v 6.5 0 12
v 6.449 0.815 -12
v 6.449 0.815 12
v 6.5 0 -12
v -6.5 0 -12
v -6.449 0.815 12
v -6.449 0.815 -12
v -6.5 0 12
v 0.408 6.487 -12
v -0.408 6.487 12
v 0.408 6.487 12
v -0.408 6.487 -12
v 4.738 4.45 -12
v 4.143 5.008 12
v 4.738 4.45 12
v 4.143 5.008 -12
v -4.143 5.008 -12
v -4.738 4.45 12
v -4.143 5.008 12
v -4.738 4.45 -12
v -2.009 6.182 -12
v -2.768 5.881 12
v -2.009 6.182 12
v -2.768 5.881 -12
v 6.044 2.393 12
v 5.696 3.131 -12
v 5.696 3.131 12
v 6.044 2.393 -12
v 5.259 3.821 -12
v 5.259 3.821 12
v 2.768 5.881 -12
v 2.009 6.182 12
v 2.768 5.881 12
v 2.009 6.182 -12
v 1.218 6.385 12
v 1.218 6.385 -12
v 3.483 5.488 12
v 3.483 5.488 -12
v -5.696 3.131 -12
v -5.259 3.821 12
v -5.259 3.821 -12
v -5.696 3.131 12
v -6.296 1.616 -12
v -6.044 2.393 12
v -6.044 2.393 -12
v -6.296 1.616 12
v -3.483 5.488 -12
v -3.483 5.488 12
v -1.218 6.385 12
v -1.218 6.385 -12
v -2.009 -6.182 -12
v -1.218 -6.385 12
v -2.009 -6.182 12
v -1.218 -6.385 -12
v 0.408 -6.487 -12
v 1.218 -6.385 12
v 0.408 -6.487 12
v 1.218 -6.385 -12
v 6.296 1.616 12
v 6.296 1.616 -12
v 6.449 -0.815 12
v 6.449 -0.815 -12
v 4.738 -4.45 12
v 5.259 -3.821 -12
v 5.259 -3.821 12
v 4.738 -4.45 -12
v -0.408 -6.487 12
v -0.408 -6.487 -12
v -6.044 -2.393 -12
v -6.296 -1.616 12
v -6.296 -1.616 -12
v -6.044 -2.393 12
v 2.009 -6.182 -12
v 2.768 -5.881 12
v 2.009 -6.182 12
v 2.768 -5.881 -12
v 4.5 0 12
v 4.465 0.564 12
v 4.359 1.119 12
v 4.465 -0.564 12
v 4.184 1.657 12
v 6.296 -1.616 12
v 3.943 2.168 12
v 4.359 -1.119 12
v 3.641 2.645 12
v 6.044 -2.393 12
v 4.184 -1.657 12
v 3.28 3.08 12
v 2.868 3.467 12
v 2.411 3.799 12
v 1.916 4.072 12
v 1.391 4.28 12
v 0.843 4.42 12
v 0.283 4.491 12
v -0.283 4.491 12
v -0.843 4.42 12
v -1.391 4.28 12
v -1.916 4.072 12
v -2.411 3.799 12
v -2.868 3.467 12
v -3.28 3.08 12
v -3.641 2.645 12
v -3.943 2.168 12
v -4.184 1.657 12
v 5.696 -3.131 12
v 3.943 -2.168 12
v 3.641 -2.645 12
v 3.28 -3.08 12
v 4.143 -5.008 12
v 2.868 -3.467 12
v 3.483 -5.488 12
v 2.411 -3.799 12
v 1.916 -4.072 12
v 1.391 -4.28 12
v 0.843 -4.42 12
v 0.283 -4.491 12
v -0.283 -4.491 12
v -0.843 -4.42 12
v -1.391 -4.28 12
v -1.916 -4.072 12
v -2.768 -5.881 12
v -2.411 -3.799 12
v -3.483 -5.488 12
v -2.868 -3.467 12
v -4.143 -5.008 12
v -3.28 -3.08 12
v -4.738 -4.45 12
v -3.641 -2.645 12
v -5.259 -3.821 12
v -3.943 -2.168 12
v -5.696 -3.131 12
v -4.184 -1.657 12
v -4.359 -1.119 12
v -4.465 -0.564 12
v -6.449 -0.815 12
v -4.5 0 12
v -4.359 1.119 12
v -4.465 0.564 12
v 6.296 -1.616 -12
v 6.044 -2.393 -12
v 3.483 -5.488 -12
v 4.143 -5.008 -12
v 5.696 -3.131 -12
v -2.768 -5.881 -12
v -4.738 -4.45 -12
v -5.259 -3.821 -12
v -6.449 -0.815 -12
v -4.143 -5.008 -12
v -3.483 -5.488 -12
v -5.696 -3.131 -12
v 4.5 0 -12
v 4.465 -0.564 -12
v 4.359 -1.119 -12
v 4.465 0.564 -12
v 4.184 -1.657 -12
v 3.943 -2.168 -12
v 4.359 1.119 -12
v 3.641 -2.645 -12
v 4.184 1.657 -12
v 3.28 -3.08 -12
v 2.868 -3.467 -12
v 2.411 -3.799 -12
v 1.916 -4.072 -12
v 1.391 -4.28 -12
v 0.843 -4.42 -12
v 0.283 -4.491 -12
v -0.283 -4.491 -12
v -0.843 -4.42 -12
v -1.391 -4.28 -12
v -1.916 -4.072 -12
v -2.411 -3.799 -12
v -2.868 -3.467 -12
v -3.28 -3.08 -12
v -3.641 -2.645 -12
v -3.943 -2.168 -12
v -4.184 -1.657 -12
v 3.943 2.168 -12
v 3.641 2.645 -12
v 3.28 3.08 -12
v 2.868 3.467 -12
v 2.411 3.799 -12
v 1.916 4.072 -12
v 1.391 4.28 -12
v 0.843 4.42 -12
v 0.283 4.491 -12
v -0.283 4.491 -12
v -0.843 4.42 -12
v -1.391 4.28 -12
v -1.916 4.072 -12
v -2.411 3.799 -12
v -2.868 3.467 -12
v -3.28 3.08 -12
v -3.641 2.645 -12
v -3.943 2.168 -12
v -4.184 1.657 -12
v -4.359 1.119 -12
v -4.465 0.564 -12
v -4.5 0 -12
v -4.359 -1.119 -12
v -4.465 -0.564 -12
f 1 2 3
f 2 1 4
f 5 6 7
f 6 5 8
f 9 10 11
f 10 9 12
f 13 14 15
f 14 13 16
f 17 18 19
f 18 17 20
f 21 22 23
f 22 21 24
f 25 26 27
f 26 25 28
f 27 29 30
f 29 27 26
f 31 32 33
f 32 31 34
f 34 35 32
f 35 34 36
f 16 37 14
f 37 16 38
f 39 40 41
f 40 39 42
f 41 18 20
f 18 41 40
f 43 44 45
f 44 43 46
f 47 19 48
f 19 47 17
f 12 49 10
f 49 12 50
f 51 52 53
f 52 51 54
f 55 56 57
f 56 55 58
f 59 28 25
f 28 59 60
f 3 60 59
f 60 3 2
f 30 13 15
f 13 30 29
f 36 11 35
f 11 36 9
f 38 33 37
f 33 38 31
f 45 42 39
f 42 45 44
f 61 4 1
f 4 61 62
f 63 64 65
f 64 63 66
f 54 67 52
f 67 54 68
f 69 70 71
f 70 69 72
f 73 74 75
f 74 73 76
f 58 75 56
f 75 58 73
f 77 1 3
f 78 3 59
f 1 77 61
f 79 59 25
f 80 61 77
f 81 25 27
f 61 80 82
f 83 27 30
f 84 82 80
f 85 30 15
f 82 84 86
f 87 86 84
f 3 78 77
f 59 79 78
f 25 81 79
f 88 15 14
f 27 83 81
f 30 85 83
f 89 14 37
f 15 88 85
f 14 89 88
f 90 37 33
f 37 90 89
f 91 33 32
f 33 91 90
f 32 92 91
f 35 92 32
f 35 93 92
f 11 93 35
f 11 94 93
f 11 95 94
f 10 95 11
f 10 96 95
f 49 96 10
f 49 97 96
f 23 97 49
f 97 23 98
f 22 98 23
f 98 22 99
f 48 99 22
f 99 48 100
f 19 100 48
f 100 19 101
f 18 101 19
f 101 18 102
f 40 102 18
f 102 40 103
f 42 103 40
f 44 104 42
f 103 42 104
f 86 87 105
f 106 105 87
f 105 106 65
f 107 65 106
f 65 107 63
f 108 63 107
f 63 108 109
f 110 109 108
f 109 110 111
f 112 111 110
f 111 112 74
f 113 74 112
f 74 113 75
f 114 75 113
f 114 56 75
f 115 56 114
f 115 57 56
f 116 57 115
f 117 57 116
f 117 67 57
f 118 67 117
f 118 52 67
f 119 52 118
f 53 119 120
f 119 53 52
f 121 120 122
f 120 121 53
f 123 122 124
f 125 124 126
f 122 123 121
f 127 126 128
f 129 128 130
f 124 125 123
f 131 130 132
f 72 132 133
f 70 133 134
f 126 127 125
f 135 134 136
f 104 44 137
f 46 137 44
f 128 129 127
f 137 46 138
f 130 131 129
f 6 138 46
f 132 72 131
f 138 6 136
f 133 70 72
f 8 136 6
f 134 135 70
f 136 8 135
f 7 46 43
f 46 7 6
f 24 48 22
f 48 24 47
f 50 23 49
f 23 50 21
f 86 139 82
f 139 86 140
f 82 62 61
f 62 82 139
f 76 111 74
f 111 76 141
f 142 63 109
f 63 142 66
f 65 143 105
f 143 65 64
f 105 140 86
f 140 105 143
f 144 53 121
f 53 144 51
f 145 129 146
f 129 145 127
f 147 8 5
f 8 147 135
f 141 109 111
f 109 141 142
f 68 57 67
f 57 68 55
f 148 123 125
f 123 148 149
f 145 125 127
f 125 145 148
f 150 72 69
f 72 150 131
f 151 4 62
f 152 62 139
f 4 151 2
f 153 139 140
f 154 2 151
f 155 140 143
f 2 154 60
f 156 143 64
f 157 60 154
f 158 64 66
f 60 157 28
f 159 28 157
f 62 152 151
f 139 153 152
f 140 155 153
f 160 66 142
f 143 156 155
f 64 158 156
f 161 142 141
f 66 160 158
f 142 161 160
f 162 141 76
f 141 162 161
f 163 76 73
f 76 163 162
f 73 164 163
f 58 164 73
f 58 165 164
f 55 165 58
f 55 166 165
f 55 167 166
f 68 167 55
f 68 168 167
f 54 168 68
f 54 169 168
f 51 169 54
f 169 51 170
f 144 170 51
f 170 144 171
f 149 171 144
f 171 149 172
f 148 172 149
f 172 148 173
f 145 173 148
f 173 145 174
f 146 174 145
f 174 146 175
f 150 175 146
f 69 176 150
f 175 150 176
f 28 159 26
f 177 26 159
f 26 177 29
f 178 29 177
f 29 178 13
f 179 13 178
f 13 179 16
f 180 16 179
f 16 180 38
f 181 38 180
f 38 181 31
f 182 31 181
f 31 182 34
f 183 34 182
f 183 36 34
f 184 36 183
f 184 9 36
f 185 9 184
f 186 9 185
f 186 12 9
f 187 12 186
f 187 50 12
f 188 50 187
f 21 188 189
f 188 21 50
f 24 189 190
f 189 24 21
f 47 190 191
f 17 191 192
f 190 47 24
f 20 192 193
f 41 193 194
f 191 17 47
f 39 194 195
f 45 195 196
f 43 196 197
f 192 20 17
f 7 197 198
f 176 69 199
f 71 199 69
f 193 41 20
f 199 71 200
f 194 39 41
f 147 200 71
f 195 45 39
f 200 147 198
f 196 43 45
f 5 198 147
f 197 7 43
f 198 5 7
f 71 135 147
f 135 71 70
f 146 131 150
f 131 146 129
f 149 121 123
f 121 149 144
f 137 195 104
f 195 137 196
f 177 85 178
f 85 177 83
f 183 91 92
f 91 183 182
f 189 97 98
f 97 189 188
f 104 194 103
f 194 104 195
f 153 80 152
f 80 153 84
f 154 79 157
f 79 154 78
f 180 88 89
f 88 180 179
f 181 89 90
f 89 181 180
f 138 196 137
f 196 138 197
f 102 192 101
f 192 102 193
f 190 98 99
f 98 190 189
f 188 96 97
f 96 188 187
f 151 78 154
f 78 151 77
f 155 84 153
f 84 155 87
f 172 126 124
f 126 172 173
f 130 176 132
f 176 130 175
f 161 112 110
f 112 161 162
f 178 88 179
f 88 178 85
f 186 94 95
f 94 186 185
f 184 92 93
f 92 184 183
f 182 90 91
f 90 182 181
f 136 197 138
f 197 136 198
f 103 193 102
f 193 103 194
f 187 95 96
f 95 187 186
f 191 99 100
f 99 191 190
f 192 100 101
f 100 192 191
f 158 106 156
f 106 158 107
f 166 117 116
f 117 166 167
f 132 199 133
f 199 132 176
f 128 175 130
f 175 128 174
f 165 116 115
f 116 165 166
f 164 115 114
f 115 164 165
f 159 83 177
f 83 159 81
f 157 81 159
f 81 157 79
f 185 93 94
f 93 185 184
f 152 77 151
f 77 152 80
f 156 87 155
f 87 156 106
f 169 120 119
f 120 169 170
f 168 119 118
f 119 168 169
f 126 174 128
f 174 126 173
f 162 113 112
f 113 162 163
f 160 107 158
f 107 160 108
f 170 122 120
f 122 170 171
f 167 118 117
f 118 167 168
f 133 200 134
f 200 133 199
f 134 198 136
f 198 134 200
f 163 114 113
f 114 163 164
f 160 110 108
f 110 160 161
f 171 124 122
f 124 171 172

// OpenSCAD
$fn = 50;


difference() {
	union() {
		translate(v = [0, 0, -12.0000000000]) {
			cylinder(h = 24, r = 6.5000000000);
		}
	}
	union() {
		translate(v = [0, 0, -100.0000000000]) {
			cylinder(h = 200, r = 4.5000000000);
		}
	}
}
